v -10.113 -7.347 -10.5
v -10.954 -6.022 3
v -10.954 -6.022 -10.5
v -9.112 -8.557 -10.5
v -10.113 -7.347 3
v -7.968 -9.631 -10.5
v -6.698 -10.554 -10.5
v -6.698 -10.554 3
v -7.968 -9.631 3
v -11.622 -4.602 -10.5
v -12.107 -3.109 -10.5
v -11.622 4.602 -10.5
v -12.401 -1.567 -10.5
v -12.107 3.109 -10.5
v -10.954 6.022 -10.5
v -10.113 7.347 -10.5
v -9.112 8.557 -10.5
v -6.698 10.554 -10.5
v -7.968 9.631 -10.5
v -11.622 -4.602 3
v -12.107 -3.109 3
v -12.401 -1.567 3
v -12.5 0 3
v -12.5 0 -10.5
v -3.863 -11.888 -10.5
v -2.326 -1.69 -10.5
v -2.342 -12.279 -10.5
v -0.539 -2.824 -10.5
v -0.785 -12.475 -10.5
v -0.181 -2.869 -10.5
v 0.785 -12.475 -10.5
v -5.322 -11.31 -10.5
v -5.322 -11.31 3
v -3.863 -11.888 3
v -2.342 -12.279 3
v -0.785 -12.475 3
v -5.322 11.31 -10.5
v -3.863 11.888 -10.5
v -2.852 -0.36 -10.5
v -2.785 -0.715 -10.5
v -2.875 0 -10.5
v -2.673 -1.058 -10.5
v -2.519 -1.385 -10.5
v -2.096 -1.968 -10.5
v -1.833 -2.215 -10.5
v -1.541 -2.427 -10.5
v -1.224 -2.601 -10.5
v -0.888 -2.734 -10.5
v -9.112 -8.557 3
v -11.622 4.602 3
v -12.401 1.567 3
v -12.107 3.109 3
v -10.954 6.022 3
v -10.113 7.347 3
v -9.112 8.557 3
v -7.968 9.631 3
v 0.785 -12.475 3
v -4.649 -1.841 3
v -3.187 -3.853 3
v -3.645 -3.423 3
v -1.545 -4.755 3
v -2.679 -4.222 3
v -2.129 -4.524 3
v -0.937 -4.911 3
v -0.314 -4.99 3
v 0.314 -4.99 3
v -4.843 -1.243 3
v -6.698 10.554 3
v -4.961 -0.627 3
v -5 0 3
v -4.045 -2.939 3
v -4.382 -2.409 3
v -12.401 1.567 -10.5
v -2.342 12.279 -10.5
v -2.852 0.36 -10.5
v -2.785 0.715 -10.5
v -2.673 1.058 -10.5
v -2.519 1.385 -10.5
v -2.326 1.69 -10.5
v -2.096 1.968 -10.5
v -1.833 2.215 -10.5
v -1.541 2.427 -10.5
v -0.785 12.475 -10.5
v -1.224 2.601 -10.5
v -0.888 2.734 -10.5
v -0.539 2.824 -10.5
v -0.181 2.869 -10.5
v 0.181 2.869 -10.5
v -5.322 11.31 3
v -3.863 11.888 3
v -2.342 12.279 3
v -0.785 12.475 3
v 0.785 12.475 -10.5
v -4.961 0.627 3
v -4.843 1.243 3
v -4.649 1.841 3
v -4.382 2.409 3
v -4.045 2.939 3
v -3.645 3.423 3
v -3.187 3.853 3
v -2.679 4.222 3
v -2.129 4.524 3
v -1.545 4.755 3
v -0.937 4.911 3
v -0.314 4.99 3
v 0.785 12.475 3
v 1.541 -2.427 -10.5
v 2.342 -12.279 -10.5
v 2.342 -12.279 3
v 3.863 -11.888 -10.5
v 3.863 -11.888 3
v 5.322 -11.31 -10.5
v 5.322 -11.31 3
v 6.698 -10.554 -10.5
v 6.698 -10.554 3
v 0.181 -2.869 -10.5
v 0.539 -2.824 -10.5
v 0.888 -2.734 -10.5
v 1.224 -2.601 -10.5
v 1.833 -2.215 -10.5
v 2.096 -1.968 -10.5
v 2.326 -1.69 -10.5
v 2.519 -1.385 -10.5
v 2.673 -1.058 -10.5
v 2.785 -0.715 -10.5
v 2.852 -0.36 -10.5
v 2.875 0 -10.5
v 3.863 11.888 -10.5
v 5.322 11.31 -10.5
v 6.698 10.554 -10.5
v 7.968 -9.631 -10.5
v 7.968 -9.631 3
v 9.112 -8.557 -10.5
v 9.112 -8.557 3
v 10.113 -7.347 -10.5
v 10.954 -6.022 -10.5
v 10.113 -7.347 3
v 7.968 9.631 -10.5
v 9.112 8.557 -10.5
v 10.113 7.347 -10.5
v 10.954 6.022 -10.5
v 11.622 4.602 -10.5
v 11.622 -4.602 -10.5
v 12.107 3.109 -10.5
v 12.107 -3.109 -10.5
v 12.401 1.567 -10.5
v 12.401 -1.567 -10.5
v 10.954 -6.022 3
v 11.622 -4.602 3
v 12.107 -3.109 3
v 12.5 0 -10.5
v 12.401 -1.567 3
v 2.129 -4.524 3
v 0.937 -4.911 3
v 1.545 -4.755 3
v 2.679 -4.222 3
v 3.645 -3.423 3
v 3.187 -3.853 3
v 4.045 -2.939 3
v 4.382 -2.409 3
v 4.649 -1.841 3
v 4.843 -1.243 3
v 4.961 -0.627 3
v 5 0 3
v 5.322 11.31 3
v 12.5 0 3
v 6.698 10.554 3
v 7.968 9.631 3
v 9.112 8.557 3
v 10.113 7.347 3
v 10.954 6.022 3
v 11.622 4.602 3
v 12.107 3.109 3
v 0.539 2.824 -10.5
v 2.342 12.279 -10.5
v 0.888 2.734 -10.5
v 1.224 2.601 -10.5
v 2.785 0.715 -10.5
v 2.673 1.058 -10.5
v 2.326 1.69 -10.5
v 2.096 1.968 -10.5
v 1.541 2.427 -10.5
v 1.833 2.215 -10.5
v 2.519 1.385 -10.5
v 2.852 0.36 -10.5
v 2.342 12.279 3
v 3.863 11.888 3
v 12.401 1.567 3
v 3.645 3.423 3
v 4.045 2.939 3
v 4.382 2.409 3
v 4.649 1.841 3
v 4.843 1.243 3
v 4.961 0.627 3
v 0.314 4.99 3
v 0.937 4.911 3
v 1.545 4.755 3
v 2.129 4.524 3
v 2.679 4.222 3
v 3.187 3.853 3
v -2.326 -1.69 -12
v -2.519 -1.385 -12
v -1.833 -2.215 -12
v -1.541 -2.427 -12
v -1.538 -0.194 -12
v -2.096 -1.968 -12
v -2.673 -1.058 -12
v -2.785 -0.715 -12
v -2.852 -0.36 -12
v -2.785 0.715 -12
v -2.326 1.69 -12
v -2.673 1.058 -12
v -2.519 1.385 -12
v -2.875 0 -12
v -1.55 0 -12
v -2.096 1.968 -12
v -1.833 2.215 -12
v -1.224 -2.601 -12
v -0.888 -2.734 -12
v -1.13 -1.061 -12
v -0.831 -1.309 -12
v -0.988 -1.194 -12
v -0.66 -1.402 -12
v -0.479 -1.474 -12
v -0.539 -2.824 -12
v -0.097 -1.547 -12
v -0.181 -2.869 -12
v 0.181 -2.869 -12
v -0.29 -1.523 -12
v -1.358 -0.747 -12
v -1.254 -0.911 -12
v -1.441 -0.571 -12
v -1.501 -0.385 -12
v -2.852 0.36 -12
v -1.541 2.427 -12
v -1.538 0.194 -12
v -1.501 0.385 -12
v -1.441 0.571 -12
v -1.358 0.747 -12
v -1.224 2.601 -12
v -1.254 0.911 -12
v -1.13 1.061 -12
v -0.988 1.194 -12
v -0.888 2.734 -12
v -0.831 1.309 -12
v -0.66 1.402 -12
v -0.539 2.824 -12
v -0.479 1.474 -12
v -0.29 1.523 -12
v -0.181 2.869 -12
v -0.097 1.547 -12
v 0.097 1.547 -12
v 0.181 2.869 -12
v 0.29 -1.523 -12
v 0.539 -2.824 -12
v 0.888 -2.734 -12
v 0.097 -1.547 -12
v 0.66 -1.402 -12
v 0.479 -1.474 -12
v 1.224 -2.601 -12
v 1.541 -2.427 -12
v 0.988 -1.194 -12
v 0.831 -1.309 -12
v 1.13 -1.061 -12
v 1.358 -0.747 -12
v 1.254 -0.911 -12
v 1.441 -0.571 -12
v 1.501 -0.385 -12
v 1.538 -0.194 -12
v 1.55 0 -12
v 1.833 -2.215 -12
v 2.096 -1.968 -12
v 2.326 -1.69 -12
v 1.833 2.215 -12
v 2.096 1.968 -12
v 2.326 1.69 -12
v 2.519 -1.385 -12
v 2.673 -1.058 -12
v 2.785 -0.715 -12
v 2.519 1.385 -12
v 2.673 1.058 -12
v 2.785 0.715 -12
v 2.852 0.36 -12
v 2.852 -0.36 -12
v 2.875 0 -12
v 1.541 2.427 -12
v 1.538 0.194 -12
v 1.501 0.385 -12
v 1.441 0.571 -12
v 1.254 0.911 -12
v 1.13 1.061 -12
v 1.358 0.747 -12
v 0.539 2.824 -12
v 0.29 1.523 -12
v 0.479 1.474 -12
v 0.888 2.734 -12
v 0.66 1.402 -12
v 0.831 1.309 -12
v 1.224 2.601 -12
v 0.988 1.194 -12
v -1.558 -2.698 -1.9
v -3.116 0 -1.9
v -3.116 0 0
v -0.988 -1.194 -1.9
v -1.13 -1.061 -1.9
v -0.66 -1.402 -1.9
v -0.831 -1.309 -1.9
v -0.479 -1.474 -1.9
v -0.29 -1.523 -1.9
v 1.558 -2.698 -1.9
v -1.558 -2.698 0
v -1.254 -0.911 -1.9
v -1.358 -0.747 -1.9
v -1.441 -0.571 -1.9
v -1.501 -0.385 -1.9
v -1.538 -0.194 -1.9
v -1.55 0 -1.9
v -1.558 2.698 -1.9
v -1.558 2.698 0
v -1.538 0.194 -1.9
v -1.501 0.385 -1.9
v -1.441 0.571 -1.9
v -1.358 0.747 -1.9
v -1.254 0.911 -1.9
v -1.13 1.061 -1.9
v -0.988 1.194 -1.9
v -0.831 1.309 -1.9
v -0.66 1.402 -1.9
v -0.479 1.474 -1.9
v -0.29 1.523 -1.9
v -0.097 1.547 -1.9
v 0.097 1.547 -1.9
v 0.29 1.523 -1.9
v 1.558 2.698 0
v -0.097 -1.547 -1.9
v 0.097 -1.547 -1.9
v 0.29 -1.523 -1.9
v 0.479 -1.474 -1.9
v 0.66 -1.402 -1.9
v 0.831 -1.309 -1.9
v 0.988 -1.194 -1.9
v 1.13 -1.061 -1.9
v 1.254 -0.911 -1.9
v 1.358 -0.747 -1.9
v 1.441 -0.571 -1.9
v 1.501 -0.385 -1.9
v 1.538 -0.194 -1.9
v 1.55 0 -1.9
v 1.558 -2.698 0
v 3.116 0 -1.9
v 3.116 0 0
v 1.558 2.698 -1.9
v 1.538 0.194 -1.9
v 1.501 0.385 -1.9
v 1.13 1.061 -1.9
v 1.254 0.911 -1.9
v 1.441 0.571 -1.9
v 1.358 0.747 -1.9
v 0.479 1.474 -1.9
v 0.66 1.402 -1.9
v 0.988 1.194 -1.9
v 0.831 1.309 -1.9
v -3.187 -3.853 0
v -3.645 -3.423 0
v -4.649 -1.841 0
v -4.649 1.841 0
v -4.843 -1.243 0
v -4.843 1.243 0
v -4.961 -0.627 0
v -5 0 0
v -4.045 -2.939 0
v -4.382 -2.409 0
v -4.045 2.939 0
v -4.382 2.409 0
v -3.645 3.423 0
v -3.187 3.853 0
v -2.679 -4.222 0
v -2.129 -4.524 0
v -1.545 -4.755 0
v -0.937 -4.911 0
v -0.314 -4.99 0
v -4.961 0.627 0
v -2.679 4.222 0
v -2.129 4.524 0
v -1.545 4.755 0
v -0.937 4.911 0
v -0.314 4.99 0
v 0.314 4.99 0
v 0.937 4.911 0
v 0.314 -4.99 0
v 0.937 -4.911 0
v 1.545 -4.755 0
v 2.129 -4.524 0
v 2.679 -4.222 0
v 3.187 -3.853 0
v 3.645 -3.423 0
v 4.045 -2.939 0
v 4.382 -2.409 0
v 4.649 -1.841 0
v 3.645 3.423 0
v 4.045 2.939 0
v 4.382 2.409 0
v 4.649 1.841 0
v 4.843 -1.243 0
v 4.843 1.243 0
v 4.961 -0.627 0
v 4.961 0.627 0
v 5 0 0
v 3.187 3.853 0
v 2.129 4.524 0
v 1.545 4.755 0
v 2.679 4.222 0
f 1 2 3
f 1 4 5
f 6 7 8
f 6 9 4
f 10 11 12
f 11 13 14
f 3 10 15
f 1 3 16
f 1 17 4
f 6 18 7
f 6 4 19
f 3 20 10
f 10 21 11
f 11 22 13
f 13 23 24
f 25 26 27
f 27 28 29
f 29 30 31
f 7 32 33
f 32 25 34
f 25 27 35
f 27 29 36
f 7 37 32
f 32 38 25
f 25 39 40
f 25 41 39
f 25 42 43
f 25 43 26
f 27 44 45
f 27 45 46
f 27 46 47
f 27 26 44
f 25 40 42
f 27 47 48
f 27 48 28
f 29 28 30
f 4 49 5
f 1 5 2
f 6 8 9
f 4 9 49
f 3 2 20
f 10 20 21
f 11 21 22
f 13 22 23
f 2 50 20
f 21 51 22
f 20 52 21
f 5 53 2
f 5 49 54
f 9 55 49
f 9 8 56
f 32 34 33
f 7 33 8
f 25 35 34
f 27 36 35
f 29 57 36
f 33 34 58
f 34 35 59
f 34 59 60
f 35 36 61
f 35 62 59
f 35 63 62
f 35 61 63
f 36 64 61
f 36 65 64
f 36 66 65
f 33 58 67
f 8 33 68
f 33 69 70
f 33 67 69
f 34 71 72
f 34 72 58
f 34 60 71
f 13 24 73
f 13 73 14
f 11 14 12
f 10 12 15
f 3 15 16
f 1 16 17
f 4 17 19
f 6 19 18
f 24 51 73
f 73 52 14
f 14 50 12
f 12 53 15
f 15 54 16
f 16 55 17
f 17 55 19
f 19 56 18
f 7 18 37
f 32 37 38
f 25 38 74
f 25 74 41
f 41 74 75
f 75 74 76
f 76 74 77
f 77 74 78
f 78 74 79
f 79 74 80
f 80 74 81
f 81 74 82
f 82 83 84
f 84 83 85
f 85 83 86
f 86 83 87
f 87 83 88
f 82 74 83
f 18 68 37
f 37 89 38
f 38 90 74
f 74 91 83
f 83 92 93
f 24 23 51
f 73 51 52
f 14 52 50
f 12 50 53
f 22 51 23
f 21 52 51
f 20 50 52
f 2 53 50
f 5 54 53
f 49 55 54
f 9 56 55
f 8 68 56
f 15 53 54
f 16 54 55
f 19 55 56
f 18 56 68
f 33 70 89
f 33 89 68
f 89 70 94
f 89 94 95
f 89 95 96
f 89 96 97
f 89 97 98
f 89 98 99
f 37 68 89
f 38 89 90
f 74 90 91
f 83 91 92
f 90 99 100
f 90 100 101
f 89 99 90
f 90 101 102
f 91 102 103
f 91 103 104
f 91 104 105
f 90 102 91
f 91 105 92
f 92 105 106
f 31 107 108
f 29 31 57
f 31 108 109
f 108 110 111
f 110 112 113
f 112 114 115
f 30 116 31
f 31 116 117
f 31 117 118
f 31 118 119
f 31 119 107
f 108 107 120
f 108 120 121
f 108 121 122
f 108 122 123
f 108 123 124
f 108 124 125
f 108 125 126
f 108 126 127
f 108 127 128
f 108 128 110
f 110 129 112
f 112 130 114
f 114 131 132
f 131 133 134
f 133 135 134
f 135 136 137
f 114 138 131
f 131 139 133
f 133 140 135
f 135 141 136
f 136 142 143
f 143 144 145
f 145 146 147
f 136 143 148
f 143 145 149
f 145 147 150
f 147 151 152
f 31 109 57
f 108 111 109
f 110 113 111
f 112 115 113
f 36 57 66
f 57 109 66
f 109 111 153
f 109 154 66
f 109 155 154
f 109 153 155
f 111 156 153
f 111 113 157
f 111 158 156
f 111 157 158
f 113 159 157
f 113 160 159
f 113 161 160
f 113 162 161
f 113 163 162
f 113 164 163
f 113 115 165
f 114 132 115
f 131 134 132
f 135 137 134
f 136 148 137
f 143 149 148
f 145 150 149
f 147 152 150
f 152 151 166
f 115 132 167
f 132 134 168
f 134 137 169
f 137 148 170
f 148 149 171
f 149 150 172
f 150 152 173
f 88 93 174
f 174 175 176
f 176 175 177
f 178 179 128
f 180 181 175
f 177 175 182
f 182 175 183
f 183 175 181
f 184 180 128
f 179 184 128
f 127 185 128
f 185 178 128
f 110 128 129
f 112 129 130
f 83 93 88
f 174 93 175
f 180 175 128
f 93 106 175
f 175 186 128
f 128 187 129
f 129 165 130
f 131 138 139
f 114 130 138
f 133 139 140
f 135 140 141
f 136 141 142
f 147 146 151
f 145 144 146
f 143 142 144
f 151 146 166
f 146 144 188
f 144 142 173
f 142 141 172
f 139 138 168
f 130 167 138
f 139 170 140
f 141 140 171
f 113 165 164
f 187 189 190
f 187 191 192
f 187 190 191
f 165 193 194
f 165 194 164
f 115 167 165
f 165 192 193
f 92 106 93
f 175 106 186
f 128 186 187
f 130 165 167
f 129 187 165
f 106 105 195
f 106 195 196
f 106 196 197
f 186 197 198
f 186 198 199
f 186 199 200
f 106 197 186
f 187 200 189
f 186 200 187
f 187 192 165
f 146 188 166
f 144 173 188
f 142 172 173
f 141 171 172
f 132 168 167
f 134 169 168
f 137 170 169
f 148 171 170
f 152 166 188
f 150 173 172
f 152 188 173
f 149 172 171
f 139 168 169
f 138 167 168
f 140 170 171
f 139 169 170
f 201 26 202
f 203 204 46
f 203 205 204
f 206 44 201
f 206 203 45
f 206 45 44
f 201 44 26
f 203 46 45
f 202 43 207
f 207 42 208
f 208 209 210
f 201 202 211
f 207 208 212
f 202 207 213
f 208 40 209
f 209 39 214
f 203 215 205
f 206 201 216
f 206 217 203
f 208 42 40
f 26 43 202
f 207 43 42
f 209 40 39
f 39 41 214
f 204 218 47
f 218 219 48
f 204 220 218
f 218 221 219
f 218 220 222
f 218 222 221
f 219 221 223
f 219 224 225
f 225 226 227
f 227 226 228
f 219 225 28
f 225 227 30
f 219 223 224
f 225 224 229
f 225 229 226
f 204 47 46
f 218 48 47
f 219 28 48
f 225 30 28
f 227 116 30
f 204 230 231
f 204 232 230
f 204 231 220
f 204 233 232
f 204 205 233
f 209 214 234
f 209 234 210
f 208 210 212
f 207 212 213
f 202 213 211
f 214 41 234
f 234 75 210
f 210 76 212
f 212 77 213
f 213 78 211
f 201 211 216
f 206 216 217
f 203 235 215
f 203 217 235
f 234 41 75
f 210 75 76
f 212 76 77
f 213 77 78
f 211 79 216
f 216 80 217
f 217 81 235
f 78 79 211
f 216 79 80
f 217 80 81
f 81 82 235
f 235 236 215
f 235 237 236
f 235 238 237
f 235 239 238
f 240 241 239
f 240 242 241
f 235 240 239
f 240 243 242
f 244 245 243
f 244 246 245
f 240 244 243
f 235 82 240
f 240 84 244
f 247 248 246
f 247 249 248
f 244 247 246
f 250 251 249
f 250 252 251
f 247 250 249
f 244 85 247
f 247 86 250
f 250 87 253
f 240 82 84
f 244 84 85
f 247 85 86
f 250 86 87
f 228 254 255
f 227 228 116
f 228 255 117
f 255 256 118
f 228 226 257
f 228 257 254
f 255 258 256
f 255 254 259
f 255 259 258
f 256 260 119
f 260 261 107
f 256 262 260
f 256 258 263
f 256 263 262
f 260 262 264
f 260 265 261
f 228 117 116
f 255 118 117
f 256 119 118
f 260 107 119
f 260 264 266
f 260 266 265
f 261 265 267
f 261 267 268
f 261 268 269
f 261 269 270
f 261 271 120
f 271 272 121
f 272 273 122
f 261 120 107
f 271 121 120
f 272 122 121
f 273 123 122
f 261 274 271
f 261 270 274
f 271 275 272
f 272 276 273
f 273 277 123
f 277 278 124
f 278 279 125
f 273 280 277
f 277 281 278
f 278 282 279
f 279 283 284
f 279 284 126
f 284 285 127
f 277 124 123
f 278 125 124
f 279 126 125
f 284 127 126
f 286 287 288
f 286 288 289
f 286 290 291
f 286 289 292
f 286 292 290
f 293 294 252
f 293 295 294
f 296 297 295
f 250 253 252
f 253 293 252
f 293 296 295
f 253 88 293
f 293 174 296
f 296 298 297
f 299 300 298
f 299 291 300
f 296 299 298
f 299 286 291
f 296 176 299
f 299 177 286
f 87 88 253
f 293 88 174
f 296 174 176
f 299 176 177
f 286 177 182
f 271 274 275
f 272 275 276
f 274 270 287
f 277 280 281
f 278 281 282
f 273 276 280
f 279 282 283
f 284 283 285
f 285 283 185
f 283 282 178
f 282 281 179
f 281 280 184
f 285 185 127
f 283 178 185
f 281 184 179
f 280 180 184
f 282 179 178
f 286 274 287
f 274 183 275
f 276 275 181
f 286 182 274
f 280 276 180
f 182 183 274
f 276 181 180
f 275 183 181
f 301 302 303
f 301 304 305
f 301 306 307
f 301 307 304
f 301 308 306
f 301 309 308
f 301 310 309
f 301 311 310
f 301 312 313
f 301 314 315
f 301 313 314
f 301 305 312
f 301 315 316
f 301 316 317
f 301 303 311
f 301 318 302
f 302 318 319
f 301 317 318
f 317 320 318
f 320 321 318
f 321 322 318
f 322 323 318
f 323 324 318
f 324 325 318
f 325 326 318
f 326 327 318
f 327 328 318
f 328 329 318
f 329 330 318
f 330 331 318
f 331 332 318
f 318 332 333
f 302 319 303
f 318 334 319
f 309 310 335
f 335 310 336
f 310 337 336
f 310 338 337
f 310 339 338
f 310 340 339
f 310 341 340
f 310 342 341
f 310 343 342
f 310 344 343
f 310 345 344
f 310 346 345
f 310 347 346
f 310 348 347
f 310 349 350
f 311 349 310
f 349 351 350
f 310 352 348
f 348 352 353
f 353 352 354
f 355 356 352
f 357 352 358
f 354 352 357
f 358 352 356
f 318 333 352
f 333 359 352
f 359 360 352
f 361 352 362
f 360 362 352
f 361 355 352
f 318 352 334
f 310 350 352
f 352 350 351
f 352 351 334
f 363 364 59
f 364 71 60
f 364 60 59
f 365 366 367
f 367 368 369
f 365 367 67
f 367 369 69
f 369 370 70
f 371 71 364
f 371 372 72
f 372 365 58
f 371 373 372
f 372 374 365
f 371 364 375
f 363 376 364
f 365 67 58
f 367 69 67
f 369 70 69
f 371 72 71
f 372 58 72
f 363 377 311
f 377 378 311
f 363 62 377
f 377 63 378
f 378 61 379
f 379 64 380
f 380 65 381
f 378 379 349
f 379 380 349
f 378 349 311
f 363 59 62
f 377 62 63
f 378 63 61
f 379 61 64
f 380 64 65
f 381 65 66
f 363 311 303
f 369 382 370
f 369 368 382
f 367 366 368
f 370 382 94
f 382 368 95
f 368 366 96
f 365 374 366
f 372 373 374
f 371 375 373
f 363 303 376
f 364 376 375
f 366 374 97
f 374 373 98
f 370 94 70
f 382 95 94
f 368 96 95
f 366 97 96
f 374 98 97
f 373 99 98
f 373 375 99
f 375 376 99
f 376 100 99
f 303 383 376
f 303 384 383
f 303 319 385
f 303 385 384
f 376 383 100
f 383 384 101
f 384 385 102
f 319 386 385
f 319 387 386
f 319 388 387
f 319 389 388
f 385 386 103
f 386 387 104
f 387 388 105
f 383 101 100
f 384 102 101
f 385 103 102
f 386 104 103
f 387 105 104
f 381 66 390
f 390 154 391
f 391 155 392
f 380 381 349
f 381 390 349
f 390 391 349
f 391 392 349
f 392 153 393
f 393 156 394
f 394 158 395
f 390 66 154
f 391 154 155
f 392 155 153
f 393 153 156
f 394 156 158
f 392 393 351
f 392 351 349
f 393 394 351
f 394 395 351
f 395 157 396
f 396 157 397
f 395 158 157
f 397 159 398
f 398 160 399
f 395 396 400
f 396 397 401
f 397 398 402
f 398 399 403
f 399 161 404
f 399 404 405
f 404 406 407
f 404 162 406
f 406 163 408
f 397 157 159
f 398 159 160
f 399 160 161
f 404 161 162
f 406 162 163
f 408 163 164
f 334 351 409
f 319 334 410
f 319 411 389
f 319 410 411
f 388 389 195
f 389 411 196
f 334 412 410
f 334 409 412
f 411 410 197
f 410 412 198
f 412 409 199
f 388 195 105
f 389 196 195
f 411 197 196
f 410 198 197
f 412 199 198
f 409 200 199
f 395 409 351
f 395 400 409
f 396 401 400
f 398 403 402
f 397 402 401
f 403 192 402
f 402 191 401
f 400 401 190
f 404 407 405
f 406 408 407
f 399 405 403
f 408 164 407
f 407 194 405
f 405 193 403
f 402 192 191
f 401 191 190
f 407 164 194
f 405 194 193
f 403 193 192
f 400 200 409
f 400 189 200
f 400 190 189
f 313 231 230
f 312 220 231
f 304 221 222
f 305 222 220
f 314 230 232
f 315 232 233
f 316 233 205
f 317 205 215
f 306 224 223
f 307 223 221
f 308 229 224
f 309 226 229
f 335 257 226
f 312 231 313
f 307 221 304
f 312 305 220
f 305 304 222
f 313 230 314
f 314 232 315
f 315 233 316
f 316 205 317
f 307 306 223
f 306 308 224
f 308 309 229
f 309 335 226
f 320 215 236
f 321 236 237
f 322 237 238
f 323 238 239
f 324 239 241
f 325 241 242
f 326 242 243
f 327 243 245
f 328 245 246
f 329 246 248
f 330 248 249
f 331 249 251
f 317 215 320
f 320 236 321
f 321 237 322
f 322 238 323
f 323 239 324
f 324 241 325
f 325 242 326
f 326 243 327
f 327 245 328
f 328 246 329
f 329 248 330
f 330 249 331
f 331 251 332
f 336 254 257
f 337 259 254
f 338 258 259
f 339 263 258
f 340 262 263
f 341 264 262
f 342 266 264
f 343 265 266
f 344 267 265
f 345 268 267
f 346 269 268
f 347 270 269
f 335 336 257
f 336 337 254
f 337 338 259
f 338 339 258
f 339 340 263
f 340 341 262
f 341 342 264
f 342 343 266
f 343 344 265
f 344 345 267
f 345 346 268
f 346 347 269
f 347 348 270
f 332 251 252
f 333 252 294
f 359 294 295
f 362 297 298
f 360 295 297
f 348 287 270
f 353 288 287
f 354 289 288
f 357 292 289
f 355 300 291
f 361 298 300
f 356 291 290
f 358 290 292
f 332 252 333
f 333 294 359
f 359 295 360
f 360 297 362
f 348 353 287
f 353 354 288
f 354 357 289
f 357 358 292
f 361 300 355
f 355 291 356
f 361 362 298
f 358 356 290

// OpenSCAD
$fn = 50;

difference() {
	union() {
		translate(v = [0, 0, -10.5]) {
			cylinder(h = 13.5, r = 12.5);
		}
		#translate(v = [0, 0, -12.0]) {
			cylinder(h = 12, r = 2.875);
		}
	}
	union() {
		translate(v = [0, 0, 0]) {
			rotate(a = [0, 0, 0]) {
				difference() {
					union() {
						translate(v = [0, 0, -1.9]) {
							linear_extrude(height = 1.9) {
								polygon(points = [[3.1158, 0.0], [1.5579000000000005, 2.698361953111554], [-1.5578999999999994, 2.6983619531115544], [-3.1158, 3.815754496783323e-16], [-1.5579000000000014, -2.6983619531115535], [1.557899999999998, -2.6983619531115552]]);
							}
						}
					}
					union();
				}
			}
		}
		#cylinder(h = 3, r = 5.0);
		#translate(v = [0, 0, -100.0]) {
			cylinder(h = 200, r = 1.55);
		}
	}
}
